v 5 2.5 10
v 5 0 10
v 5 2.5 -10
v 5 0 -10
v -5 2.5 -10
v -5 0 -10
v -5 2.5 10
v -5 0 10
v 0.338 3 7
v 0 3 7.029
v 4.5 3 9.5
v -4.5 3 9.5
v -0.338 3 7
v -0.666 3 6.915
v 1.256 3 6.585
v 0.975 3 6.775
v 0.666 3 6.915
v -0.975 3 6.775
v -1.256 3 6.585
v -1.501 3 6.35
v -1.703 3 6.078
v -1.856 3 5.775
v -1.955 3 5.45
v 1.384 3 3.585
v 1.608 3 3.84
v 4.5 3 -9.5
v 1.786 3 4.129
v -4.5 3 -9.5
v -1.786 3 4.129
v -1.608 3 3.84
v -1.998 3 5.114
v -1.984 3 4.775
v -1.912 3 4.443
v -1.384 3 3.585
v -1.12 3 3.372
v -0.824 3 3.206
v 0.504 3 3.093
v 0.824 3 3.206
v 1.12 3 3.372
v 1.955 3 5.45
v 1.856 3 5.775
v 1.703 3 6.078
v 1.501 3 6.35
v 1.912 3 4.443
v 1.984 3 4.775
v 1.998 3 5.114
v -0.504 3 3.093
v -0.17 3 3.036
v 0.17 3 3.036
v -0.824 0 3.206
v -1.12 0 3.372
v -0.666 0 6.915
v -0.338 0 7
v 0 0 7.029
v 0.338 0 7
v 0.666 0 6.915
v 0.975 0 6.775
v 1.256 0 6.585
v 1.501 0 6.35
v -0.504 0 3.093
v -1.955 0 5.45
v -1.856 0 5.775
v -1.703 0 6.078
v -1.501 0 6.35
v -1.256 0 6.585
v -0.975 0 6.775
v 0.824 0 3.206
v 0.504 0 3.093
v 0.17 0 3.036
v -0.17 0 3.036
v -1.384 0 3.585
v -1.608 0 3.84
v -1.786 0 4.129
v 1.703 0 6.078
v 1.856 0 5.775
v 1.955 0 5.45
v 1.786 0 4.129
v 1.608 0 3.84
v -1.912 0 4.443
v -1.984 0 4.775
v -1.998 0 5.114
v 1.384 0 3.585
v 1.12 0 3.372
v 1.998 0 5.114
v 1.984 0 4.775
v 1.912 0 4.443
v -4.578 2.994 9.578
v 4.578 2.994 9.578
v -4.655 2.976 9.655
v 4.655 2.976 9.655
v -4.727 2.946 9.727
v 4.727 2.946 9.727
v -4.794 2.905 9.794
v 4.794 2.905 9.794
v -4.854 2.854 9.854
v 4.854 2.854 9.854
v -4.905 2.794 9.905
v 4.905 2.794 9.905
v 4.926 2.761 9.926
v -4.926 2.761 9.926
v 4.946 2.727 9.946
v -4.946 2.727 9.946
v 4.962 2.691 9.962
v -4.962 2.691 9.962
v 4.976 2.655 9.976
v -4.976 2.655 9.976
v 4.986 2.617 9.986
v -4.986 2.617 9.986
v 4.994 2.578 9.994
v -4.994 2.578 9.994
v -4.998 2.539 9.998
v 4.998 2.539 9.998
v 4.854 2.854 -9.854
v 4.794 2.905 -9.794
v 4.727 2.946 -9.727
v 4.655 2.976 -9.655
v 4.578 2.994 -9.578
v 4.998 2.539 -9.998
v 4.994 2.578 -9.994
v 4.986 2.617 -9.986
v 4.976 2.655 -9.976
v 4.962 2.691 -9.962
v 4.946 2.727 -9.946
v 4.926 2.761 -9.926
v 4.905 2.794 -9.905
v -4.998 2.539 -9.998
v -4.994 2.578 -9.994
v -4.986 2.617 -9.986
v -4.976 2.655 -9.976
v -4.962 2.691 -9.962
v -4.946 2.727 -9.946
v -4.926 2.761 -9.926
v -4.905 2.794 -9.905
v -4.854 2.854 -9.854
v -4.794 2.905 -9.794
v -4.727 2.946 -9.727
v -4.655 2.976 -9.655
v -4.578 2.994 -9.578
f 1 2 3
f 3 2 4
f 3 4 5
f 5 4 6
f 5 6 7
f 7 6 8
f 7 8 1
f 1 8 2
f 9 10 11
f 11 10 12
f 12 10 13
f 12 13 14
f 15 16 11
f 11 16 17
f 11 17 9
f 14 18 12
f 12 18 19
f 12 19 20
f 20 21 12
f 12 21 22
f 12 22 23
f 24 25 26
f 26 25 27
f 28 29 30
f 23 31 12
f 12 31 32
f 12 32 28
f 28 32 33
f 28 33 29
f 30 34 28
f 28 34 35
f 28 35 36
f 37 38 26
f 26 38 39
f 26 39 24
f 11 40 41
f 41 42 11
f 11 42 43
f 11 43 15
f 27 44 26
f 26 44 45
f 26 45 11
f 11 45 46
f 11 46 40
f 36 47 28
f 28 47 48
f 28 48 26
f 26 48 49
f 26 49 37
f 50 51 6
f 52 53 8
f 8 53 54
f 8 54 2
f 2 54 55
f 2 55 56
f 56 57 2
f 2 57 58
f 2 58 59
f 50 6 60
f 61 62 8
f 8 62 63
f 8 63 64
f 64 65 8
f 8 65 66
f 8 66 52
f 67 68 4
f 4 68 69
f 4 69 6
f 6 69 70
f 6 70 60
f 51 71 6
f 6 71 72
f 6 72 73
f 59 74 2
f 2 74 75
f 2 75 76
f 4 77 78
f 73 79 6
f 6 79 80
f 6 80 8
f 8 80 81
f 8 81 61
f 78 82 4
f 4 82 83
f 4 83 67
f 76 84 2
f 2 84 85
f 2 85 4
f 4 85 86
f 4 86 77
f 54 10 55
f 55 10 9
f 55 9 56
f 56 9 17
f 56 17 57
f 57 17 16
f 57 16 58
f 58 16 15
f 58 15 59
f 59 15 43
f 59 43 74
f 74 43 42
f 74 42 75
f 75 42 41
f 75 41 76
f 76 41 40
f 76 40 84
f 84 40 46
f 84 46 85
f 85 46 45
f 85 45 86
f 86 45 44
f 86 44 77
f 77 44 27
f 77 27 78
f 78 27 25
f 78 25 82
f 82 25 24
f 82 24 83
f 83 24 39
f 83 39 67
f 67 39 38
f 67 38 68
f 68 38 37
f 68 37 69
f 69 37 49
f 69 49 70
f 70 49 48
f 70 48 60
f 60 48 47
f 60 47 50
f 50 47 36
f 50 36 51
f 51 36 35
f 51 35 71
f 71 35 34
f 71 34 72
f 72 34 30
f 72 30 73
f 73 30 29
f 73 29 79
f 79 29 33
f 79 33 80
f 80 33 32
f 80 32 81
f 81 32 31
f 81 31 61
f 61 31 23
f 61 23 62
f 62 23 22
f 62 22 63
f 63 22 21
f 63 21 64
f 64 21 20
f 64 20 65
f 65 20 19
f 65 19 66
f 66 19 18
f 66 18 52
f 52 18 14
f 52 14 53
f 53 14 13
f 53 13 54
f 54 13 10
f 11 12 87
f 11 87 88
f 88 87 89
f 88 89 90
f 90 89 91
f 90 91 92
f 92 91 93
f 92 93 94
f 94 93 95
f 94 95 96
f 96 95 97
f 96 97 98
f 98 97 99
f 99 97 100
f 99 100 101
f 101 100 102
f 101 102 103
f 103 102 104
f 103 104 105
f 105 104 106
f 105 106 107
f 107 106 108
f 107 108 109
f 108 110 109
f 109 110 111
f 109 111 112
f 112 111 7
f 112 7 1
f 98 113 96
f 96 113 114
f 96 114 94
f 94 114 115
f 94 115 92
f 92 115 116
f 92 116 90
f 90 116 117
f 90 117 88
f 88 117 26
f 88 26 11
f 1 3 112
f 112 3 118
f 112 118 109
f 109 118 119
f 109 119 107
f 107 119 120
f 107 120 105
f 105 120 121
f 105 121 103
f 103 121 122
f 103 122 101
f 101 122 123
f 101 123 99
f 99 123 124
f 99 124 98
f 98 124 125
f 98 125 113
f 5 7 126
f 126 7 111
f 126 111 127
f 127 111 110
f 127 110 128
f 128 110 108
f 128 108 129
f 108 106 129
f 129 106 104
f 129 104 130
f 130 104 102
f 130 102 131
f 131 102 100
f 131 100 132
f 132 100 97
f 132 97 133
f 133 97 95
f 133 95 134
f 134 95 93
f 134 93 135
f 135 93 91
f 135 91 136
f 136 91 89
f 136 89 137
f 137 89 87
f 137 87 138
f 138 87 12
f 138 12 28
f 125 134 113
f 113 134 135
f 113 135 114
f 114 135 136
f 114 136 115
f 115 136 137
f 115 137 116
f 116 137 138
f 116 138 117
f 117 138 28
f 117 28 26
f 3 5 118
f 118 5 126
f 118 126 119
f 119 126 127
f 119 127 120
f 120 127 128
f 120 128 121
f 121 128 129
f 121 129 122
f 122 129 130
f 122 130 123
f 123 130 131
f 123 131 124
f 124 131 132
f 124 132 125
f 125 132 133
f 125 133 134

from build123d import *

# Parameters (mm, degrees)
SKETCH1_W           = 10
SKETCH1_H           = 20
BOSS_EXTRUDE1_DEPTH = 3
SKETCH2_R           = 2
CUT_EXTRUDE1_DEPTH  = 3
FILLET1_R           = 0.5


with BuildPart() as part:
    # Sketch1 → Boss-Extrude1 (new body)
    with BuildSketch(Plane(origin=(0, 0, 0), x_dir=(1, 0, 0), z_dir=(0, 1, 0))):
        Rectangle(SKETCH1_W, SKETCH1_H)
    extrude(amount=BOSS_EXTRUDE1_DEPTH)

    # Sketch2 → Cut-Extrude1 (cut)
    with BuildSketch(Plane(origin=(0, 3, 0), x_dir=(1, 0, 0), z_dir=(0, 1, 0))):
        with Locations(Location((0, -5.028947697, 0), (0, 0, 270))):
            Circle(SKETCH2_R)
    extrude(amount=-CUT_EXTRUDE1_DEPTH, mode=Mode.SUBTRACT)

    # Fillet1
    fillet1_edges = [part.edges().sort_by_distance(p)[0] for p in [
        (-5, 3, 0),
        (0, 3, 10),
        (5, 3, 0),
        (0, 3, -10),
    ]]
    fillet(fillet1_edges, radius=FILLET1_R)


solid = part.part
